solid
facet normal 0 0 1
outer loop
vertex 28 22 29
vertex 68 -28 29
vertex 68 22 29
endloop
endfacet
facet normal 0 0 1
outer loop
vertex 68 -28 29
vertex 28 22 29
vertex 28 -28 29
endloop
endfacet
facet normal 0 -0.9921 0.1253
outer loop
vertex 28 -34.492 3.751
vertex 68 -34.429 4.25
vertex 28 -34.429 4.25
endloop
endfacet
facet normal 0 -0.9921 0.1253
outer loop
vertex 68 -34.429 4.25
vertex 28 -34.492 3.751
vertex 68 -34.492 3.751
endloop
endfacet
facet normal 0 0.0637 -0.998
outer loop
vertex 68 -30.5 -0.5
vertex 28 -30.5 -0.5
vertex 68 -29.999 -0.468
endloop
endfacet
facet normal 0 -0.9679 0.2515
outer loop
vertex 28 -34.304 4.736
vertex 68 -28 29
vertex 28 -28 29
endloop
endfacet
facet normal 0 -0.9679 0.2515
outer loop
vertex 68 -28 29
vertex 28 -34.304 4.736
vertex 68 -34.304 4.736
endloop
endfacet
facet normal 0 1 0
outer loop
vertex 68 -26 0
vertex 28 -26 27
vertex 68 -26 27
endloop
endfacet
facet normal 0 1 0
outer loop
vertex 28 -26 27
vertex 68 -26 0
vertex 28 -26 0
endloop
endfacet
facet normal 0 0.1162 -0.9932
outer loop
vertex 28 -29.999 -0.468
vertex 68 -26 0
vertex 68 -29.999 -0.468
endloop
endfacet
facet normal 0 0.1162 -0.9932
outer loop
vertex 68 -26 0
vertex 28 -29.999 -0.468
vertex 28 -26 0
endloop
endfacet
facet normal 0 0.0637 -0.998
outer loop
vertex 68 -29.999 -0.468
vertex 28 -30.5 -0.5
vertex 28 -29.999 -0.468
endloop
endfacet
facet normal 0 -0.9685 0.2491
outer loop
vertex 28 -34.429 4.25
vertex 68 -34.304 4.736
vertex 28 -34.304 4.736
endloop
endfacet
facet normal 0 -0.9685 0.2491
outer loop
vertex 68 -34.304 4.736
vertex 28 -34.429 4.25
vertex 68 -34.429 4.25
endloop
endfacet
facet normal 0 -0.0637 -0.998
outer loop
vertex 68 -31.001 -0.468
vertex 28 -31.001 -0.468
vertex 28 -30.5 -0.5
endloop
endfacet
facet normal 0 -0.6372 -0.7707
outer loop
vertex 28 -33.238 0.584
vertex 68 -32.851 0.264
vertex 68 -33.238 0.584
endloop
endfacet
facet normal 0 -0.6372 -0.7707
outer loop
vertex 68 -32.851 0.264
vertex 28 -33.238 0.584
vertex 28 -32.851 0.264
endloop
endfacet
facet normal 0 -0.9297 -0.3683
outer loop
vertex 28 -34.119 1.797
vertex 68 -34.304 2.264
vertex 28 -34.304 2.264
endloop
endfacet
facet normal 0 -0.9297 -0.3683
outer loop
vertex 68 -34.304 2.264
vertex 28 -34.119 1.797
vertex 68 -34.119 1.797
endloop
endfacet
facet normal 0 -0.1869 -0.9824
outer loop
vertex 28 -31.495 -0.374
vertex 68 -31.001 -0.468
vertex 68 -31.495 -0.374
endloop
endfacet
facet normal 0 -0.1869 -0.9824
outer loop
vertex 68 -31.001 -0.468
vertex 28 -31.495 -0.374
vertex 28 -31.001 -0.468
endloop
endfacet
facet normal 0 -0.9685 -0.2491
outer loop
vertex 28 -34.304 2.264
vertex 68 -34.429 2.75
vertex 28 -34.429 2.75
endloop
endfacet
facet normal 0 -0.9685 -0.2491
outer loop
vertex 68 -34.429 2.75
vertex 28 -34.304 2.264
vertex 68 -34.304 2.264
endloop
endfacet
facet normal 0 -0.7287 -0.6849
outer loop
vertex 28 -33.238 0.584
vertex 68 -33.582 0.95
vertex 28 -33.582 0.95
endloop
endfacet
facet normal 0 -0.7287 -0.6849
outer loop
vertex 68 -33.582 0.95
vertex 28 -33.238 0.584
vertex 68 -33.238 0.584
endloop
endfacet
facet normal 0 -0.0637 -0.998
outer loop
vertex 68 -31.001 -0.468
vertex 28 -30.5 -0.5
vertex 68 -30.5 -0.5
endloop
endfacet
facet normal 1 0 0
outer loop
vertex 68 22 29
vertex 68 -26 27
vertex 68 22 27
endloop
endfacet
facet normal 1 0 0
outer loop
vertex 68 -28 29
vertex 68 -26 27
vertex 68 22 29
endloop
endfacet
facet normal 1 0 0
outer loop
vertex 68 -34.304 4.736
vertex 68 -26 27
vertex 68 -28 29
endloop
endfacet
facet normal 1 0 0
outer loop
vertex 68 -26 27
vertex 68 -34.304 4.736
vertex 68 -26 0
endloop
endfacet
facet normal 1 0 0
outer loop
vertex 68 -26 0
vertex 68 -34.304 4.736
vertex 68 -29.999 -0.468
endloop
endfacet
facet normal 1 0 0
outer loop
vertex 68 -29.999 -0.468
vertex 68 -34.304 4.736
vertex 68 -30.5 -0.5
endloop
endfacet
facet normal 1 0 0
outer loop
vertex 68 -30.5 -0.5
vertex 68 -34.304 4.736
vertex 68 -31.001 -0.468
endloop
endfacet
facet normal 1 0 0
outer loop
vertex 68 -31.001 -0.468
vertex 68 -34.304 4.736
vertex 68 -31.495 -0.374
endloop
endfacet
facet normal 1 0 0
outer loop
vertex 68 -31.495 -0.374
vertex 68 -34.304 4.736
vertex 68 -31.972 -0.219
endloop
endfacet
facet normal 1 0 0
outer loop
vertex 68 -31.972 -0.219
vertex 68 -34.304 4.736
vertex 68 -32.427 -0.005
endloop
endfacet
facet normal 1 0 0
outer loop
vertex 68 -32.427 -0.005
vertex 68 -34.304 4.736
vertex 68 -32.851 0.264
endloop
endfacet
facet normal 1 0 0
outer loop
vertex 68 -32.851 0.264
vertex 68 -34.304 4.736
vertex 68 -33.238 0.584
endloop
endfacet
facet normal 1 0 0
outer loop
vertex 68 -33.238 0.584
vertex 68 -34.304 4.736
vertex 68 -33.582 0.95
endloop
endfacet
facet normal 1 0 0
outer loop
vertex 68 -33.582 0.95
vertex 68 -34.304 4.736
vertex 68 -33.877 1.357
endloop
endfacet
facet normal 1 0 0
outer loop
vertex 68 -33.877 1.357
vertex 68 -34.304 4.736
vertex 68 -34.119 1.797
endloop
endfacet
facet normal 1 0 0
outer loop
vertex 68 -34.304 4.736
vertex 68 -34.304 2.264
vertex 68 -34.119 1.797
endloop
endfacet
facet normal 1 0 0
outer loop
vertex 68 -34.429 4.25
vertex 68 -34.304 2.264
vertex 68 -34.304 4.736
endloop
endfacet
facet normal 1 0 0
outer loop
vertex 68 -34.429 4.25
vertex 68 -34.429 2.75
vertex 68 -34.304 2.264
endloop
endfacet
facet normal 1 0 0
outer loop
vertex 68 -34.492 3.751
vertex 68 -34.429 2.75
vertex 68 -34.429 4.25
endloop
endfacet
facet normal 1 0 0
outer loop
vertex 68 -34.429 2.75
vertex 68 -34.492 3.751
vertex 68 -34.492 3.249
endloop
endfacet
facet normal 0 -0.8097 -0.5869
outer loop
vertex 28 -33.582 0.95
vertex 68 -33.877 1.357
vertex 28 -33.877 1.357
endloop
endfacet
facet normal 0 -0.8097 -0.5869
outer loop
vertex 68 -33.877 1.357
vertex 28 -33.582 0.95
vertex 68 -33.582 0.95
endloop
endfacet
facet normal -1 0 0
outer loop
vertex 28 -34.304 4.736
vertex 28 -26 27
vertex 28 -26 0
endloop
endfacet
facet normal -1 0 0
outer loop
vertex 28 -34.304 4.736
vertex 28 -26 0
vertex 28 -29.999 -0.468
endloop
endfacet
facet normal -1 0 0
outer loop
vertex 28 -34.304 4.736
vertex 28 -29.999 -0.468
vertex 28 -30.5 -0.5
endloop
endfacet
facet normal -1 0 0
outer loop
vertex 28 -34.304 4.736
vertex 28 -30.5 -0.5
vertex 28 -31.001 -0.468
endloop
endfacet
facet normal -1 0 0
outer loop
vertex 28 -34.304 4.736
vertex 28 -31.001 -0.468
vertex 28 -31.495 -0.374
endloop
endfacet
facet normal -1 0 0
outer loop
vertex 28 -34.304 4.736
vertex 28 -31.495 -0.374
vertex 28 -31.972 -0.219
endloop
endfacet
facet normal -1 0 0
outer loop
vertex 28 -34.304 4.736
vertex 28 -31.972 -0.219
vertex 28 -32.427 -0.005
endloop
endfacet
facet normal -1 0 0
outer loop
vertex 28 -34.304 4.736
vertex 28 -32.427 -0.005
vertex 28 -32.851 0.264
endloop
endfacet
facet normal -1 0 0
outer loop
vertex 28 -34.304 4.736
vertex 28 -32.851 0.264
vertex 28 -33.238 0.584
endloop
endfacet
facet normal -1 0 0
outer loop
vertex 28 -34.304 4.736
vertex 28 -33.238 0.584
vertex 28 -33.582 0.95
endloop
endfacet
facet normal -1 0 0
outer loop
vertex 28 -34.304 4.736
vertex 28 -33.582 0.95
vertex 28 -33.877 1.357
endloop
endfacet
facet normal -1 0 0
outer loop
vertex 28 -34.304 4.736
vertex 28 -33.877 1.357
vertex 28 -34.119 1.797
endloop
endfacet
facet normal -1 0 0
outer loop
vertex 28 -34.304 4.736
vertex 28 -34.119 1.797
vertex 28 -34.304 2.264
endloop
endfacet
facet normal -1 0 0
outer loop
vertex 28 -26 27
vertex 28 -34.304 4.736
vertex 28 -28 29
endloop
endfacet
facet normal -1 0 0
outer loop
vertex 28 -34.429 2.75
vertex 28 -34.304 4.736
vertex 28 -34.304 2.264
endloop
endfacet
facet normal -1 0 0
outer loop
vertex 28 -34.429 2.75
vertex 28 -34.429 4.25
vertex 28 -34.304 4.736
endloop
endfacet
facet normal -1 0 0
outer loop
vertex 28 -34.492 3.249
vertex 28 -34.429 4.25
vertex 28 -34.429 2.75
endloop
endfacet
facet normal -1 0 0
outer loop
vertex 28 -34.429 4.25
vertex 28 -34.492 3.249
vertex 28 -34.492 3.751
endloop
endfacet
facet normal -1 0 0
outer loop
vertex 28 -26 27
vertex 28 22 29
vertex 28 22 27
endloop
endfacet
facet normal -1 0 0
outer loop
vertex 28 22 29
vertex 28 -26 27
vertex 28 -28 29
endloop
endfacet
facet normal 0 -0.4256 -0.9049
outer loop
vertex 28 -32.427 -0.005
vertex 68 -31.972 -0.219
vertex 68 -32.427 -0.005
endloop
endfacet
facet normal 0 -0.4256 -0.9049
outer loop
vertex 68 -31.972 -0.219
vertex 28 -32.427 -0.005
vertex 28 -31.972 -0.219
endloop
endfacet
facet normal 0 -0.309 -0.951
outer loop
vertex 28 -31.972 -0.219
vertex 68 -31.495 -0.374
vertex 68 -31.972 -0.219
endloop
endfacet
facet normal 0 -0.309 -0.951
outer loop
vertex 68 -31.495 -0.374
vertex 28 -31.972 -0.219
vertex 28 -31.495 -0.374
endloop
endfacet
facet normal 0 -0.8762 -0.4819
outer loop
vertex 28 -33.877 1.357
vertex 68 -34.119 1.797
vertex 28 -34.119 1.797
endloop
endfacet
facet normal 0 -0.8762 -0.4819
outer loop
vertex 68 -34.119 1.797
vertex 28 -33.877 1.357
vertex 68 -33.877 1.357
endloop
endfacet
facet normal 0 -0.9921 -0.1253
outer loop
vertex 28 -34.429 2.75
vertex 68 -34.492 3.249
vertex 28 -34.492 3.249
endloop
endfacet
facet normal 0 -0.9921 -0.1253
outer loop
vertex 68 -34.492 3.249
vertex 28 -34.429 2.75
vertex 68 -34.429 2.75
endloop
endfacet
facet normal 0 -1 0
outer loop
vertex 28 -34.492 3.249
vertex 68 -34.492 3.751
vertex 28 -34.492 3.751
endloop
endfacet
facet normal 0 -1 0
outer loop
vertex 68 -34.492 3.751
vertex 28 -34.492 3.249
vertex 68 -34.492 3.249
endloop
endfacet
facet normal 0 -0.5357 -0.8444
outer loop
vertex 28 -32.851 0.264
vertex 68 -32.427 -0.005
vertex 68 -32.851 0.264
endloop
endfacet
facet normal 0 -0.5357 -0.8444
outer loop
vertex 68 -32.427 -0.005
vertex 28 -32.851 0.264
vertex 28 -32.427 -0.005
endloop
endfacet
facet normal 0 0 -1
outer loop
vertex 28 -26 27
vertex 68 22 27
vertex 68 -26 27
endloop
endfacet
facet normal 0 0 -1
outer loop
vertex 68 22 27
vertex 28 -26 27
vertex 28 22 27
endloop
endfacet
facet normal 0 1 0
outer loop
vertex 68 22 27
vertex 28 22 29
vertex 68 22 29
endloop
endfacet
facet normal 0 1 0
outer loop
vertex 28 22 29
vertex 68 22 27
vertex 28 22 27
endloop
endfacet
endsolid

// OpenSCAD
$fn=50;

union() {
    hull() {
    
        translate([28, -28, 0]) {
            cube([40, 2, 29]);
        }
        
        translate([28, -30.5, 3.5]) {
            rotate([0, 90, 0]) {
                cylinder(h=40, r=4);
            }
        }
    }

    translate([28, -28, 27]) {
        cube([40, 50, 2]);
    }
}
